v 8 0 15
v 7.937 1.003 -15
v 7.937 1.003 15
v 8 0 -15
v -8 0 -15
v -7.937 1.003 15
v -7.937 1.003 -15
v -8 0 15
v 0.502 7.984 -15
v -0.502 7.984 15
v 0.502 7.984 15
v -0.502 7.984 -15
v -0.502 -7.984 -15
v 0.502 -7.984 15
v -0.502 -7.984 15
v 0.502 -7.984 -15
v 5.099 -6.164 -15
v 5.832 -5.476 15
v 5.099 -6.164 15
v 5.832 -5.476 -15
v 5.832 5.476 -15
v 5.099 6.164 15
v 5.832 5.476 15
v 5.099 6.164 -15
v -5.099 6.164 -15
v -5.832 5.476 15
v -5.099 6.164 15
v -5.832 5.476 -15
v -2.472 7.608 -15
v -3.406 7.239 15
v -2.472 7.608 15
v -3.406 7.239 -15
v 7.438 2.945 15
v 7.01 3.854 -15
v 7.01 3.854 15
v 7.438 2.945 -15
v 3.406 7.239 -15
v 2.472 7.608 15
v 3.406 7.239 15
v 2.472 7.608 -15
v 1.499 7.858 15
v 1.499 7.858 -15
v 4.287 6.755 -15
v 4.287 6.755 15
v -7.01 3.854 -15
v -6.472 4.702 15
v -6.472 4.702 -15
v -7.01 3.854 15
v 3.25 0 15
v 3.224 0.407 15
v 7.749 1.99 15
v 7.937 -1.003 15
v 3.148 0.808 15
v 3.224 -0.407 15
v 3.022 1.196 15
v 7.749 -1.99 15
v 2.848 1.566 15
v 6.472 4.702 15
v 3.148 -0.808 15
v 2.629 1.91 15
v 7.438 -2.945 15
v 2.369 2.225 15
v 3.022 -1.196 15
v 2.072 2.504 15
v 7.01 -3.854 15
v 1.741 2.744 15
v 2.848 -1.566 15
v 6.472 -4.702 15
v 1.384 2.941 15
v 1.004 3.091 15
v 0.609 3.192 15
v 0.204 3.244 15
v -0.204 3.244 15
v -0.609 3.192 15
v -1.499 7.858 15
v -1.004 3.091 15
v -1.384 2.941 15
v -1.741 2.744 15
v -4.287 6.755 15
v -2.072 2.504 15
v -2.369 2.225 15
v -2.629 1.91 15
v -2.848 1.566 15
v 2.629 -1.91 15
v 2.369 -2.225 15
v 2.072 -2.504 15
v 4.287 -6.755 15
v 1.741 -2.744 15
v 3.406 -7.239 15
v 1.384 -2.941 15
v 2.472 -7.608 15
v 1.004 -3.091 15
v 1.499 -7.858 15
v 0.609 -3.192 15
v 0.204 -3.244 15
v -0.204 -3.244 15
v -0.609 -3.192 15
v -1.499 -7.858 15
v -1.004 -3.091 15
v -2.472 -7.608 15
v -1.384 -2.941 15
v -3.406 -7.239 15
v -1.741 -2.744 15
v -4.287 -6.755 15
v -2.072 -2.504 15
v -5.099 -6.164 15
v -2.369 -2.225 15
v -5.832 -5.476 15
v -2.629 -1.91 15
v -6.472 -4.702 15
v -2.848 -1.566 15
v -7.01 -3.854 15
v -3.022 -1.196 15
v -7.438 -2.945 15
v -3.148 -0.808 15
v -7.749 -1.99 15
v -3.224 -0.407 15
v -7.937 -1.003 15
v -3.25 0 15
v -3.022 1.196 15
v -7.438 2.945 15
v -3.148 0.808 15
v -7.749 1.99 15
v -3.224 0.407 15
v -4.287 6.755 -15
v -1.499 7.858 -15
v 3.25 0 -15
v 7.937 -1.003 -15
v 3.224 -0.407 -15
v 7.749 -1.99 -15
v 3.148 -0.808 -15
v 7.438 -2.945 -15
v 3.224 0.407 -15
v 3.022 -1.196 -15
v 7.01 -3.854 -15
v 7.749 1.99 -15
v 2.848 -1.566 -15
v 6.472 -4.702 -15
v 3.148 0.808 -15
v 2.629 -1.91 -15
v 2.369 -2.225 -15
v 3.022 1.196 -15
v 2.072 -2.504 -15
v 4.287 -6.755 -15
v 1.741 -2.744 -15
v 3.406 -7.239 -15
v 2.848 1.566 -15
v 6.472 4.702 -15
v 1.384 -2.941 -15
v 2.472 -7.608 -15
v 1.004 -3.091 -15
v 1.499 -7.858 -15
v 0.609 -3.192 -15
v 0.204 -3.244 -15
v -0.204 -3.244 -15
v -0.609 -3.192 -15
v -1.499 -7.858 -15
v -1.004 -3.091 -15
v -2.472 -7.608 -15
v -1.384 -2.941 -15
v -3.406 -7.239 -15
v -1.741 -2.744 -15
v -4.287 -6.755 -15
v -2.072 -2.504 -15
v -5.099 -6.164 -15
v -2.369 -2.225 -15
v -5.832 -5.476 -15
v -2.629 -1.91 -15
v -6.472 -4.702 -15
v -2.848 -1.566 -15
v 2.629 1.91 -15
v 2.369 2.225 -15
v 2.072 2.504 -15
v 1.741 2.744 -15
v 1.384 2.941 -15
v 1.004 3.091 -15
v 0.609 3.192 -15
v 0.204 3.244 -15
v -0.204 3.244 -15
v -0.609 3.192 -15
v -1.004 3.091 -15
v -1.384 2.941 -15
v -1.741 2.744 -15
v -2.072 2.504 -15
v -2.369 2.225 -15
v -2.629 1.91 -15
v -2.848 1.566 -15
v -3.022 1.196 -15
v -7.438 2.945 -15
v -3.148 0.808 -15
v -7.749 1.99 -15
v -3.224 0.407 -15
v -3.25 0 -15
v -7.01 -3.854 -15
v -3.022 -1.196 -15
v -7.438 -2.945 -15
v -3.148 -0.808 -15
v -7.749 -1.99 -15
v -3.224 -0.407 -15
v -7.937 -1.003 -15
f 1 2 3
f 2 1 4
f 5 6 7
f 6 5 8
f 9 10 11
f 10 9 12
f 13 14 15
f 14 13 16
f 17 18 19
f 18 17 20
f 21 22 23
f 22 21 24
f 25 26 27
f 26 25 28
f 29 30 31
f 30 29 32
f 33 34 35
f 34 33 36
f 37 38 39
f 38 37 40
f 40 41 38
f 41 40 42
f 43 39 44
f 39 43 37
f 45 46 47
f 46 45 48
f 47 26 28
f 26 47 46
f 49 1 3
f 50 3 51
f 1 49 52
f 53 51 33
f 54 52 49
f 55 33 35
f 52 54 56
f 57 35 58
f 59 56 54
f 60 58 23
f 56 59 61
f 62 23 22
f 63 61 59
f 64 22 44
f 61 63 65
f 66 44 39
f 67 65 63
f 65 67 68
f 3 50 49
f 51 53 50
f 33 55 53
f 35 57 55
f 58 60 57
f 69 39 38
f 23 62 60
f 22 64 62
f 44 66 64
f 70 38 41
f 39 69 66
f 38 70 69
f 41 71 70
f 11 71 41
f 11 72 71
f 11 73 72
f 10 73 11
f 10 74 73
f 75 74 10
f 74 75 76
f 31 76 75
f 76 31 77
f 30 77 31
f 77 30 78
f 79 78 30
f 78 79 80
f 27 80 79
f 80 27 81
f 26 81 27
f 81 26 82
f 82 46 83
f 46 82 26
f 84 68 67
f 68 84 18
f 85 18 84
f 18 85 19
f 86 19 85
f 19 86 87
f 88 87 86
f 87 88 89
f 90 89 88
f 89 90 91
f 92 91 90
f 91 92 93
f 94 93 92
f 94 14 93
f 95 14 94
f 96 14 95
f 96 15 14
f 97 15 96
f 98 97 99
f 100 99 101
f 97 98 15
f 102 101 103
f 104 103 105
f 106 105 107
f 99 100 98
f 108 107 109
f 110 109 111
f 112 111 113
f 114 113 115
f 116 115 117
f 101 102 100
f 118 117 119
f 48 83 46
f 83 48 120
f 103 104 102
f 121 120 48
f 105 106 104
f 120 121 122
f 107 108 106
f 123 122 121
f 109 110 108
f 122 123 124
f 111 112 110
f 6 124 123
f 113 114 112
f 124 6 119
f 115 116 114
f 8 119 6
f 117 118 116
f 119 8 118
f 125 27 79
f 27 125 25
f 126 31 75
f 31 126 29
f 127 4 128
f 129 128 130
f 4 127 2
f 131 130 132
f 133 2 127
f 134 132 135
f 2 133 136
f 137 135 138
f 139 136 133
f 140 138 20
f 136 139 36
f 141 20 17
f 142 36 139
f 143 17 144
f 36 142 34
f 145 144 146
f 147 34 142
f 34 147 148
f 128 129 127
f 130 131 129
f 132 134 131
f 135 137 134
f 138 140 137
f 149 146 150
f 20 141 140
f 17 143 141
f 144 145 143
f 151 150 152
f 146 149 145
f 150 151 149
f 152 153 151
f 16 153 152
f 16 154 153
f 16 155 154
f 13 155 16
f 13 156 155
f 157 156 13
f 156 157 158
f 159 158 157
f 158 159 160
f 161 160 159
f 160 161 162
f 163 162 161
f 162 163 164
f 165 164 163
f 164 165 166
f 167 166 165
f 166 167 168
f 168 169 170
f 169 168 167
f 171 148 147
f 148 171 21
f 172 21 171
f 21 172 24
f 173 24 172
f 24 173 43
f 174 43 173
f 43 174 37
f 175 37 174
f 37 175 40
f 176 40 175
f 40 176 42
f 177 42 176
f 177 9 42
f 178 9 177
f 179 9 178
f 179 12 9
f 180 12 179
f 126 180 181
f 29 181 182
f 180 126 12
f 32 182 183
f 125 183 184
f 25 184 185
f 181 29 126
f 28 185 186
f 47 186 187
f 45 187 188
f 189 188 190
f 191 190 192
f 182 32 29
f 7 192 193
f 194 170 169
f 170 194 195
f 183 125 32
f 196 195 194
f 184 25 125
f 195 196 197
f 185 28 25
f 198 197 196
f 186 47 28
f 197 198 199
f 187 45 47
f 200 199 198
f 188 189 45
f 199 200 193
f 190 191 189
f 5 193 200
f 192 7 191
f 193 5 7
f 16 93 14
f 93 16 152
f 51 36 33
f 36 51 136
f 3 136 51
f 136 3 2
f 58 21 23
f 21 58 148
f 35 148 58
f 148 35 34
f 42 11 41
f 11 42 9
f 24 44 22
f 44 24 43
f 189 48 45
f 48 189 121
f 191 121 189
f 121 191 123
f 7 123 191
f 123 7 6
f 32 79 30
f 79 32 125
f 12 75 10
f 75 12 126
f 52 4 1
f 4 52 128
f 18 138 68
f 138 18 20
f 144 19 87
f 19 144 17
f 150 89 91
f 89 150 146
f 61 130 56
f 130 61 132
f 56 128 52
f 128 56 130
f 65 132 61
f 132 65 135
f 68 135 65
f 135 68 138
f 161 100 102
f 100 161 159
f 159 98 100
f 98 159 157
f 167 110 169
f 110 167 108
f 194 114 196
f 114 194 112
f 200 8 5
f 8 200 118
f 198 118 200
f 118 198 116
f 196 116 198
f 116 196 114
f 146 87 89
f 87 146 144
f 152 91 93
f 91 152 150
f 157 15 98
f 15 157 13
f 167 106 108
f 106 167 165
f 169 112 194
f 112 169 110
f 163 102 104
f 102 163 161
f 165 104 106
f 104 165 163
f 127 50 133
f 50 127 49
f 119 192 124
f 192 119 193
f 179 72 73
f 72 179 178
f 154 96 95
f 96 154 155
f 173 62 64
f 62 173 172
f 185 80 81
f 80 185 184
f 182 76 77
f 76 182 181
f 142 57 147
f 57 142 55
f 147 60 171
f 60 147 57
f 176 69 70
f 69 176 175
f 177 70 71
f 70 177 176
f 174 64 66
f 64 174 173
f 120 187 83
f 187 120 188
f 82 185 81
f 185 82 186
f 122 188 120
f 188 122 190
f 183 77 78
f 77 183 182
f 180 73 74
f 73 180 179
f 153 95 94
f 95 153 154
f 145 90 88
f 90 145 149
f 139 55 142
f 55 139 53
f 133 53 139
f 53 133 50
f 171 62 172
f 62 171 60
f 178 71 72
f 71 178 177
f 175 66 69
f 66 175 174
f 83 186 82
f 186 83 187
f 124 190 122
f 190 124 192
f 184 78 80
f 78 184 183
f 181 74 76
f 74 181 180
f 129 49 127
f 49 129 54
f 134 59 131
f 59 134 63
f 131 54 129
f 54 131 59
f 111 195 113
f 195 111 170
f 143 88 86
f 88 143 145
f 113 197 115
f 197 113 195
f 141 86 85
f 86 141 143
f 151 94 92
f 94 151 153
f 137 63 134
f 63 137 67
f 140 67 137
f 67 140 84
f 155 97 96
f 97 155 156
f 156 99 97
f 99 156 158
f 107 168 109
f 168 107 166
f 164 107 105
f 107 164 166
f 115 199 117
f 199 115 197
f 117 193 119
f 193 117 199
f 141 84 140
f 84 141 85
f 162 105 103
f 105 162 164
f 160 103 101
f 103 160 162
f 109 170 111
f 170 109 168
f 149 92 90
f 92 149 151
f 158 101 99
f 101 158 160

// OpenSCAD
$fn = 50;


difference() {
	union() {
		translate(v = [0, 0, -15.0000000000]) {
			cylinder(h = 30, r = 8.0000000000);
		}
	}
	union() {
		translate(v = [0, 0, -100.0000000000]) {
			cylinder(h = 200, r = 3.2500000000);
		}
	}
}
